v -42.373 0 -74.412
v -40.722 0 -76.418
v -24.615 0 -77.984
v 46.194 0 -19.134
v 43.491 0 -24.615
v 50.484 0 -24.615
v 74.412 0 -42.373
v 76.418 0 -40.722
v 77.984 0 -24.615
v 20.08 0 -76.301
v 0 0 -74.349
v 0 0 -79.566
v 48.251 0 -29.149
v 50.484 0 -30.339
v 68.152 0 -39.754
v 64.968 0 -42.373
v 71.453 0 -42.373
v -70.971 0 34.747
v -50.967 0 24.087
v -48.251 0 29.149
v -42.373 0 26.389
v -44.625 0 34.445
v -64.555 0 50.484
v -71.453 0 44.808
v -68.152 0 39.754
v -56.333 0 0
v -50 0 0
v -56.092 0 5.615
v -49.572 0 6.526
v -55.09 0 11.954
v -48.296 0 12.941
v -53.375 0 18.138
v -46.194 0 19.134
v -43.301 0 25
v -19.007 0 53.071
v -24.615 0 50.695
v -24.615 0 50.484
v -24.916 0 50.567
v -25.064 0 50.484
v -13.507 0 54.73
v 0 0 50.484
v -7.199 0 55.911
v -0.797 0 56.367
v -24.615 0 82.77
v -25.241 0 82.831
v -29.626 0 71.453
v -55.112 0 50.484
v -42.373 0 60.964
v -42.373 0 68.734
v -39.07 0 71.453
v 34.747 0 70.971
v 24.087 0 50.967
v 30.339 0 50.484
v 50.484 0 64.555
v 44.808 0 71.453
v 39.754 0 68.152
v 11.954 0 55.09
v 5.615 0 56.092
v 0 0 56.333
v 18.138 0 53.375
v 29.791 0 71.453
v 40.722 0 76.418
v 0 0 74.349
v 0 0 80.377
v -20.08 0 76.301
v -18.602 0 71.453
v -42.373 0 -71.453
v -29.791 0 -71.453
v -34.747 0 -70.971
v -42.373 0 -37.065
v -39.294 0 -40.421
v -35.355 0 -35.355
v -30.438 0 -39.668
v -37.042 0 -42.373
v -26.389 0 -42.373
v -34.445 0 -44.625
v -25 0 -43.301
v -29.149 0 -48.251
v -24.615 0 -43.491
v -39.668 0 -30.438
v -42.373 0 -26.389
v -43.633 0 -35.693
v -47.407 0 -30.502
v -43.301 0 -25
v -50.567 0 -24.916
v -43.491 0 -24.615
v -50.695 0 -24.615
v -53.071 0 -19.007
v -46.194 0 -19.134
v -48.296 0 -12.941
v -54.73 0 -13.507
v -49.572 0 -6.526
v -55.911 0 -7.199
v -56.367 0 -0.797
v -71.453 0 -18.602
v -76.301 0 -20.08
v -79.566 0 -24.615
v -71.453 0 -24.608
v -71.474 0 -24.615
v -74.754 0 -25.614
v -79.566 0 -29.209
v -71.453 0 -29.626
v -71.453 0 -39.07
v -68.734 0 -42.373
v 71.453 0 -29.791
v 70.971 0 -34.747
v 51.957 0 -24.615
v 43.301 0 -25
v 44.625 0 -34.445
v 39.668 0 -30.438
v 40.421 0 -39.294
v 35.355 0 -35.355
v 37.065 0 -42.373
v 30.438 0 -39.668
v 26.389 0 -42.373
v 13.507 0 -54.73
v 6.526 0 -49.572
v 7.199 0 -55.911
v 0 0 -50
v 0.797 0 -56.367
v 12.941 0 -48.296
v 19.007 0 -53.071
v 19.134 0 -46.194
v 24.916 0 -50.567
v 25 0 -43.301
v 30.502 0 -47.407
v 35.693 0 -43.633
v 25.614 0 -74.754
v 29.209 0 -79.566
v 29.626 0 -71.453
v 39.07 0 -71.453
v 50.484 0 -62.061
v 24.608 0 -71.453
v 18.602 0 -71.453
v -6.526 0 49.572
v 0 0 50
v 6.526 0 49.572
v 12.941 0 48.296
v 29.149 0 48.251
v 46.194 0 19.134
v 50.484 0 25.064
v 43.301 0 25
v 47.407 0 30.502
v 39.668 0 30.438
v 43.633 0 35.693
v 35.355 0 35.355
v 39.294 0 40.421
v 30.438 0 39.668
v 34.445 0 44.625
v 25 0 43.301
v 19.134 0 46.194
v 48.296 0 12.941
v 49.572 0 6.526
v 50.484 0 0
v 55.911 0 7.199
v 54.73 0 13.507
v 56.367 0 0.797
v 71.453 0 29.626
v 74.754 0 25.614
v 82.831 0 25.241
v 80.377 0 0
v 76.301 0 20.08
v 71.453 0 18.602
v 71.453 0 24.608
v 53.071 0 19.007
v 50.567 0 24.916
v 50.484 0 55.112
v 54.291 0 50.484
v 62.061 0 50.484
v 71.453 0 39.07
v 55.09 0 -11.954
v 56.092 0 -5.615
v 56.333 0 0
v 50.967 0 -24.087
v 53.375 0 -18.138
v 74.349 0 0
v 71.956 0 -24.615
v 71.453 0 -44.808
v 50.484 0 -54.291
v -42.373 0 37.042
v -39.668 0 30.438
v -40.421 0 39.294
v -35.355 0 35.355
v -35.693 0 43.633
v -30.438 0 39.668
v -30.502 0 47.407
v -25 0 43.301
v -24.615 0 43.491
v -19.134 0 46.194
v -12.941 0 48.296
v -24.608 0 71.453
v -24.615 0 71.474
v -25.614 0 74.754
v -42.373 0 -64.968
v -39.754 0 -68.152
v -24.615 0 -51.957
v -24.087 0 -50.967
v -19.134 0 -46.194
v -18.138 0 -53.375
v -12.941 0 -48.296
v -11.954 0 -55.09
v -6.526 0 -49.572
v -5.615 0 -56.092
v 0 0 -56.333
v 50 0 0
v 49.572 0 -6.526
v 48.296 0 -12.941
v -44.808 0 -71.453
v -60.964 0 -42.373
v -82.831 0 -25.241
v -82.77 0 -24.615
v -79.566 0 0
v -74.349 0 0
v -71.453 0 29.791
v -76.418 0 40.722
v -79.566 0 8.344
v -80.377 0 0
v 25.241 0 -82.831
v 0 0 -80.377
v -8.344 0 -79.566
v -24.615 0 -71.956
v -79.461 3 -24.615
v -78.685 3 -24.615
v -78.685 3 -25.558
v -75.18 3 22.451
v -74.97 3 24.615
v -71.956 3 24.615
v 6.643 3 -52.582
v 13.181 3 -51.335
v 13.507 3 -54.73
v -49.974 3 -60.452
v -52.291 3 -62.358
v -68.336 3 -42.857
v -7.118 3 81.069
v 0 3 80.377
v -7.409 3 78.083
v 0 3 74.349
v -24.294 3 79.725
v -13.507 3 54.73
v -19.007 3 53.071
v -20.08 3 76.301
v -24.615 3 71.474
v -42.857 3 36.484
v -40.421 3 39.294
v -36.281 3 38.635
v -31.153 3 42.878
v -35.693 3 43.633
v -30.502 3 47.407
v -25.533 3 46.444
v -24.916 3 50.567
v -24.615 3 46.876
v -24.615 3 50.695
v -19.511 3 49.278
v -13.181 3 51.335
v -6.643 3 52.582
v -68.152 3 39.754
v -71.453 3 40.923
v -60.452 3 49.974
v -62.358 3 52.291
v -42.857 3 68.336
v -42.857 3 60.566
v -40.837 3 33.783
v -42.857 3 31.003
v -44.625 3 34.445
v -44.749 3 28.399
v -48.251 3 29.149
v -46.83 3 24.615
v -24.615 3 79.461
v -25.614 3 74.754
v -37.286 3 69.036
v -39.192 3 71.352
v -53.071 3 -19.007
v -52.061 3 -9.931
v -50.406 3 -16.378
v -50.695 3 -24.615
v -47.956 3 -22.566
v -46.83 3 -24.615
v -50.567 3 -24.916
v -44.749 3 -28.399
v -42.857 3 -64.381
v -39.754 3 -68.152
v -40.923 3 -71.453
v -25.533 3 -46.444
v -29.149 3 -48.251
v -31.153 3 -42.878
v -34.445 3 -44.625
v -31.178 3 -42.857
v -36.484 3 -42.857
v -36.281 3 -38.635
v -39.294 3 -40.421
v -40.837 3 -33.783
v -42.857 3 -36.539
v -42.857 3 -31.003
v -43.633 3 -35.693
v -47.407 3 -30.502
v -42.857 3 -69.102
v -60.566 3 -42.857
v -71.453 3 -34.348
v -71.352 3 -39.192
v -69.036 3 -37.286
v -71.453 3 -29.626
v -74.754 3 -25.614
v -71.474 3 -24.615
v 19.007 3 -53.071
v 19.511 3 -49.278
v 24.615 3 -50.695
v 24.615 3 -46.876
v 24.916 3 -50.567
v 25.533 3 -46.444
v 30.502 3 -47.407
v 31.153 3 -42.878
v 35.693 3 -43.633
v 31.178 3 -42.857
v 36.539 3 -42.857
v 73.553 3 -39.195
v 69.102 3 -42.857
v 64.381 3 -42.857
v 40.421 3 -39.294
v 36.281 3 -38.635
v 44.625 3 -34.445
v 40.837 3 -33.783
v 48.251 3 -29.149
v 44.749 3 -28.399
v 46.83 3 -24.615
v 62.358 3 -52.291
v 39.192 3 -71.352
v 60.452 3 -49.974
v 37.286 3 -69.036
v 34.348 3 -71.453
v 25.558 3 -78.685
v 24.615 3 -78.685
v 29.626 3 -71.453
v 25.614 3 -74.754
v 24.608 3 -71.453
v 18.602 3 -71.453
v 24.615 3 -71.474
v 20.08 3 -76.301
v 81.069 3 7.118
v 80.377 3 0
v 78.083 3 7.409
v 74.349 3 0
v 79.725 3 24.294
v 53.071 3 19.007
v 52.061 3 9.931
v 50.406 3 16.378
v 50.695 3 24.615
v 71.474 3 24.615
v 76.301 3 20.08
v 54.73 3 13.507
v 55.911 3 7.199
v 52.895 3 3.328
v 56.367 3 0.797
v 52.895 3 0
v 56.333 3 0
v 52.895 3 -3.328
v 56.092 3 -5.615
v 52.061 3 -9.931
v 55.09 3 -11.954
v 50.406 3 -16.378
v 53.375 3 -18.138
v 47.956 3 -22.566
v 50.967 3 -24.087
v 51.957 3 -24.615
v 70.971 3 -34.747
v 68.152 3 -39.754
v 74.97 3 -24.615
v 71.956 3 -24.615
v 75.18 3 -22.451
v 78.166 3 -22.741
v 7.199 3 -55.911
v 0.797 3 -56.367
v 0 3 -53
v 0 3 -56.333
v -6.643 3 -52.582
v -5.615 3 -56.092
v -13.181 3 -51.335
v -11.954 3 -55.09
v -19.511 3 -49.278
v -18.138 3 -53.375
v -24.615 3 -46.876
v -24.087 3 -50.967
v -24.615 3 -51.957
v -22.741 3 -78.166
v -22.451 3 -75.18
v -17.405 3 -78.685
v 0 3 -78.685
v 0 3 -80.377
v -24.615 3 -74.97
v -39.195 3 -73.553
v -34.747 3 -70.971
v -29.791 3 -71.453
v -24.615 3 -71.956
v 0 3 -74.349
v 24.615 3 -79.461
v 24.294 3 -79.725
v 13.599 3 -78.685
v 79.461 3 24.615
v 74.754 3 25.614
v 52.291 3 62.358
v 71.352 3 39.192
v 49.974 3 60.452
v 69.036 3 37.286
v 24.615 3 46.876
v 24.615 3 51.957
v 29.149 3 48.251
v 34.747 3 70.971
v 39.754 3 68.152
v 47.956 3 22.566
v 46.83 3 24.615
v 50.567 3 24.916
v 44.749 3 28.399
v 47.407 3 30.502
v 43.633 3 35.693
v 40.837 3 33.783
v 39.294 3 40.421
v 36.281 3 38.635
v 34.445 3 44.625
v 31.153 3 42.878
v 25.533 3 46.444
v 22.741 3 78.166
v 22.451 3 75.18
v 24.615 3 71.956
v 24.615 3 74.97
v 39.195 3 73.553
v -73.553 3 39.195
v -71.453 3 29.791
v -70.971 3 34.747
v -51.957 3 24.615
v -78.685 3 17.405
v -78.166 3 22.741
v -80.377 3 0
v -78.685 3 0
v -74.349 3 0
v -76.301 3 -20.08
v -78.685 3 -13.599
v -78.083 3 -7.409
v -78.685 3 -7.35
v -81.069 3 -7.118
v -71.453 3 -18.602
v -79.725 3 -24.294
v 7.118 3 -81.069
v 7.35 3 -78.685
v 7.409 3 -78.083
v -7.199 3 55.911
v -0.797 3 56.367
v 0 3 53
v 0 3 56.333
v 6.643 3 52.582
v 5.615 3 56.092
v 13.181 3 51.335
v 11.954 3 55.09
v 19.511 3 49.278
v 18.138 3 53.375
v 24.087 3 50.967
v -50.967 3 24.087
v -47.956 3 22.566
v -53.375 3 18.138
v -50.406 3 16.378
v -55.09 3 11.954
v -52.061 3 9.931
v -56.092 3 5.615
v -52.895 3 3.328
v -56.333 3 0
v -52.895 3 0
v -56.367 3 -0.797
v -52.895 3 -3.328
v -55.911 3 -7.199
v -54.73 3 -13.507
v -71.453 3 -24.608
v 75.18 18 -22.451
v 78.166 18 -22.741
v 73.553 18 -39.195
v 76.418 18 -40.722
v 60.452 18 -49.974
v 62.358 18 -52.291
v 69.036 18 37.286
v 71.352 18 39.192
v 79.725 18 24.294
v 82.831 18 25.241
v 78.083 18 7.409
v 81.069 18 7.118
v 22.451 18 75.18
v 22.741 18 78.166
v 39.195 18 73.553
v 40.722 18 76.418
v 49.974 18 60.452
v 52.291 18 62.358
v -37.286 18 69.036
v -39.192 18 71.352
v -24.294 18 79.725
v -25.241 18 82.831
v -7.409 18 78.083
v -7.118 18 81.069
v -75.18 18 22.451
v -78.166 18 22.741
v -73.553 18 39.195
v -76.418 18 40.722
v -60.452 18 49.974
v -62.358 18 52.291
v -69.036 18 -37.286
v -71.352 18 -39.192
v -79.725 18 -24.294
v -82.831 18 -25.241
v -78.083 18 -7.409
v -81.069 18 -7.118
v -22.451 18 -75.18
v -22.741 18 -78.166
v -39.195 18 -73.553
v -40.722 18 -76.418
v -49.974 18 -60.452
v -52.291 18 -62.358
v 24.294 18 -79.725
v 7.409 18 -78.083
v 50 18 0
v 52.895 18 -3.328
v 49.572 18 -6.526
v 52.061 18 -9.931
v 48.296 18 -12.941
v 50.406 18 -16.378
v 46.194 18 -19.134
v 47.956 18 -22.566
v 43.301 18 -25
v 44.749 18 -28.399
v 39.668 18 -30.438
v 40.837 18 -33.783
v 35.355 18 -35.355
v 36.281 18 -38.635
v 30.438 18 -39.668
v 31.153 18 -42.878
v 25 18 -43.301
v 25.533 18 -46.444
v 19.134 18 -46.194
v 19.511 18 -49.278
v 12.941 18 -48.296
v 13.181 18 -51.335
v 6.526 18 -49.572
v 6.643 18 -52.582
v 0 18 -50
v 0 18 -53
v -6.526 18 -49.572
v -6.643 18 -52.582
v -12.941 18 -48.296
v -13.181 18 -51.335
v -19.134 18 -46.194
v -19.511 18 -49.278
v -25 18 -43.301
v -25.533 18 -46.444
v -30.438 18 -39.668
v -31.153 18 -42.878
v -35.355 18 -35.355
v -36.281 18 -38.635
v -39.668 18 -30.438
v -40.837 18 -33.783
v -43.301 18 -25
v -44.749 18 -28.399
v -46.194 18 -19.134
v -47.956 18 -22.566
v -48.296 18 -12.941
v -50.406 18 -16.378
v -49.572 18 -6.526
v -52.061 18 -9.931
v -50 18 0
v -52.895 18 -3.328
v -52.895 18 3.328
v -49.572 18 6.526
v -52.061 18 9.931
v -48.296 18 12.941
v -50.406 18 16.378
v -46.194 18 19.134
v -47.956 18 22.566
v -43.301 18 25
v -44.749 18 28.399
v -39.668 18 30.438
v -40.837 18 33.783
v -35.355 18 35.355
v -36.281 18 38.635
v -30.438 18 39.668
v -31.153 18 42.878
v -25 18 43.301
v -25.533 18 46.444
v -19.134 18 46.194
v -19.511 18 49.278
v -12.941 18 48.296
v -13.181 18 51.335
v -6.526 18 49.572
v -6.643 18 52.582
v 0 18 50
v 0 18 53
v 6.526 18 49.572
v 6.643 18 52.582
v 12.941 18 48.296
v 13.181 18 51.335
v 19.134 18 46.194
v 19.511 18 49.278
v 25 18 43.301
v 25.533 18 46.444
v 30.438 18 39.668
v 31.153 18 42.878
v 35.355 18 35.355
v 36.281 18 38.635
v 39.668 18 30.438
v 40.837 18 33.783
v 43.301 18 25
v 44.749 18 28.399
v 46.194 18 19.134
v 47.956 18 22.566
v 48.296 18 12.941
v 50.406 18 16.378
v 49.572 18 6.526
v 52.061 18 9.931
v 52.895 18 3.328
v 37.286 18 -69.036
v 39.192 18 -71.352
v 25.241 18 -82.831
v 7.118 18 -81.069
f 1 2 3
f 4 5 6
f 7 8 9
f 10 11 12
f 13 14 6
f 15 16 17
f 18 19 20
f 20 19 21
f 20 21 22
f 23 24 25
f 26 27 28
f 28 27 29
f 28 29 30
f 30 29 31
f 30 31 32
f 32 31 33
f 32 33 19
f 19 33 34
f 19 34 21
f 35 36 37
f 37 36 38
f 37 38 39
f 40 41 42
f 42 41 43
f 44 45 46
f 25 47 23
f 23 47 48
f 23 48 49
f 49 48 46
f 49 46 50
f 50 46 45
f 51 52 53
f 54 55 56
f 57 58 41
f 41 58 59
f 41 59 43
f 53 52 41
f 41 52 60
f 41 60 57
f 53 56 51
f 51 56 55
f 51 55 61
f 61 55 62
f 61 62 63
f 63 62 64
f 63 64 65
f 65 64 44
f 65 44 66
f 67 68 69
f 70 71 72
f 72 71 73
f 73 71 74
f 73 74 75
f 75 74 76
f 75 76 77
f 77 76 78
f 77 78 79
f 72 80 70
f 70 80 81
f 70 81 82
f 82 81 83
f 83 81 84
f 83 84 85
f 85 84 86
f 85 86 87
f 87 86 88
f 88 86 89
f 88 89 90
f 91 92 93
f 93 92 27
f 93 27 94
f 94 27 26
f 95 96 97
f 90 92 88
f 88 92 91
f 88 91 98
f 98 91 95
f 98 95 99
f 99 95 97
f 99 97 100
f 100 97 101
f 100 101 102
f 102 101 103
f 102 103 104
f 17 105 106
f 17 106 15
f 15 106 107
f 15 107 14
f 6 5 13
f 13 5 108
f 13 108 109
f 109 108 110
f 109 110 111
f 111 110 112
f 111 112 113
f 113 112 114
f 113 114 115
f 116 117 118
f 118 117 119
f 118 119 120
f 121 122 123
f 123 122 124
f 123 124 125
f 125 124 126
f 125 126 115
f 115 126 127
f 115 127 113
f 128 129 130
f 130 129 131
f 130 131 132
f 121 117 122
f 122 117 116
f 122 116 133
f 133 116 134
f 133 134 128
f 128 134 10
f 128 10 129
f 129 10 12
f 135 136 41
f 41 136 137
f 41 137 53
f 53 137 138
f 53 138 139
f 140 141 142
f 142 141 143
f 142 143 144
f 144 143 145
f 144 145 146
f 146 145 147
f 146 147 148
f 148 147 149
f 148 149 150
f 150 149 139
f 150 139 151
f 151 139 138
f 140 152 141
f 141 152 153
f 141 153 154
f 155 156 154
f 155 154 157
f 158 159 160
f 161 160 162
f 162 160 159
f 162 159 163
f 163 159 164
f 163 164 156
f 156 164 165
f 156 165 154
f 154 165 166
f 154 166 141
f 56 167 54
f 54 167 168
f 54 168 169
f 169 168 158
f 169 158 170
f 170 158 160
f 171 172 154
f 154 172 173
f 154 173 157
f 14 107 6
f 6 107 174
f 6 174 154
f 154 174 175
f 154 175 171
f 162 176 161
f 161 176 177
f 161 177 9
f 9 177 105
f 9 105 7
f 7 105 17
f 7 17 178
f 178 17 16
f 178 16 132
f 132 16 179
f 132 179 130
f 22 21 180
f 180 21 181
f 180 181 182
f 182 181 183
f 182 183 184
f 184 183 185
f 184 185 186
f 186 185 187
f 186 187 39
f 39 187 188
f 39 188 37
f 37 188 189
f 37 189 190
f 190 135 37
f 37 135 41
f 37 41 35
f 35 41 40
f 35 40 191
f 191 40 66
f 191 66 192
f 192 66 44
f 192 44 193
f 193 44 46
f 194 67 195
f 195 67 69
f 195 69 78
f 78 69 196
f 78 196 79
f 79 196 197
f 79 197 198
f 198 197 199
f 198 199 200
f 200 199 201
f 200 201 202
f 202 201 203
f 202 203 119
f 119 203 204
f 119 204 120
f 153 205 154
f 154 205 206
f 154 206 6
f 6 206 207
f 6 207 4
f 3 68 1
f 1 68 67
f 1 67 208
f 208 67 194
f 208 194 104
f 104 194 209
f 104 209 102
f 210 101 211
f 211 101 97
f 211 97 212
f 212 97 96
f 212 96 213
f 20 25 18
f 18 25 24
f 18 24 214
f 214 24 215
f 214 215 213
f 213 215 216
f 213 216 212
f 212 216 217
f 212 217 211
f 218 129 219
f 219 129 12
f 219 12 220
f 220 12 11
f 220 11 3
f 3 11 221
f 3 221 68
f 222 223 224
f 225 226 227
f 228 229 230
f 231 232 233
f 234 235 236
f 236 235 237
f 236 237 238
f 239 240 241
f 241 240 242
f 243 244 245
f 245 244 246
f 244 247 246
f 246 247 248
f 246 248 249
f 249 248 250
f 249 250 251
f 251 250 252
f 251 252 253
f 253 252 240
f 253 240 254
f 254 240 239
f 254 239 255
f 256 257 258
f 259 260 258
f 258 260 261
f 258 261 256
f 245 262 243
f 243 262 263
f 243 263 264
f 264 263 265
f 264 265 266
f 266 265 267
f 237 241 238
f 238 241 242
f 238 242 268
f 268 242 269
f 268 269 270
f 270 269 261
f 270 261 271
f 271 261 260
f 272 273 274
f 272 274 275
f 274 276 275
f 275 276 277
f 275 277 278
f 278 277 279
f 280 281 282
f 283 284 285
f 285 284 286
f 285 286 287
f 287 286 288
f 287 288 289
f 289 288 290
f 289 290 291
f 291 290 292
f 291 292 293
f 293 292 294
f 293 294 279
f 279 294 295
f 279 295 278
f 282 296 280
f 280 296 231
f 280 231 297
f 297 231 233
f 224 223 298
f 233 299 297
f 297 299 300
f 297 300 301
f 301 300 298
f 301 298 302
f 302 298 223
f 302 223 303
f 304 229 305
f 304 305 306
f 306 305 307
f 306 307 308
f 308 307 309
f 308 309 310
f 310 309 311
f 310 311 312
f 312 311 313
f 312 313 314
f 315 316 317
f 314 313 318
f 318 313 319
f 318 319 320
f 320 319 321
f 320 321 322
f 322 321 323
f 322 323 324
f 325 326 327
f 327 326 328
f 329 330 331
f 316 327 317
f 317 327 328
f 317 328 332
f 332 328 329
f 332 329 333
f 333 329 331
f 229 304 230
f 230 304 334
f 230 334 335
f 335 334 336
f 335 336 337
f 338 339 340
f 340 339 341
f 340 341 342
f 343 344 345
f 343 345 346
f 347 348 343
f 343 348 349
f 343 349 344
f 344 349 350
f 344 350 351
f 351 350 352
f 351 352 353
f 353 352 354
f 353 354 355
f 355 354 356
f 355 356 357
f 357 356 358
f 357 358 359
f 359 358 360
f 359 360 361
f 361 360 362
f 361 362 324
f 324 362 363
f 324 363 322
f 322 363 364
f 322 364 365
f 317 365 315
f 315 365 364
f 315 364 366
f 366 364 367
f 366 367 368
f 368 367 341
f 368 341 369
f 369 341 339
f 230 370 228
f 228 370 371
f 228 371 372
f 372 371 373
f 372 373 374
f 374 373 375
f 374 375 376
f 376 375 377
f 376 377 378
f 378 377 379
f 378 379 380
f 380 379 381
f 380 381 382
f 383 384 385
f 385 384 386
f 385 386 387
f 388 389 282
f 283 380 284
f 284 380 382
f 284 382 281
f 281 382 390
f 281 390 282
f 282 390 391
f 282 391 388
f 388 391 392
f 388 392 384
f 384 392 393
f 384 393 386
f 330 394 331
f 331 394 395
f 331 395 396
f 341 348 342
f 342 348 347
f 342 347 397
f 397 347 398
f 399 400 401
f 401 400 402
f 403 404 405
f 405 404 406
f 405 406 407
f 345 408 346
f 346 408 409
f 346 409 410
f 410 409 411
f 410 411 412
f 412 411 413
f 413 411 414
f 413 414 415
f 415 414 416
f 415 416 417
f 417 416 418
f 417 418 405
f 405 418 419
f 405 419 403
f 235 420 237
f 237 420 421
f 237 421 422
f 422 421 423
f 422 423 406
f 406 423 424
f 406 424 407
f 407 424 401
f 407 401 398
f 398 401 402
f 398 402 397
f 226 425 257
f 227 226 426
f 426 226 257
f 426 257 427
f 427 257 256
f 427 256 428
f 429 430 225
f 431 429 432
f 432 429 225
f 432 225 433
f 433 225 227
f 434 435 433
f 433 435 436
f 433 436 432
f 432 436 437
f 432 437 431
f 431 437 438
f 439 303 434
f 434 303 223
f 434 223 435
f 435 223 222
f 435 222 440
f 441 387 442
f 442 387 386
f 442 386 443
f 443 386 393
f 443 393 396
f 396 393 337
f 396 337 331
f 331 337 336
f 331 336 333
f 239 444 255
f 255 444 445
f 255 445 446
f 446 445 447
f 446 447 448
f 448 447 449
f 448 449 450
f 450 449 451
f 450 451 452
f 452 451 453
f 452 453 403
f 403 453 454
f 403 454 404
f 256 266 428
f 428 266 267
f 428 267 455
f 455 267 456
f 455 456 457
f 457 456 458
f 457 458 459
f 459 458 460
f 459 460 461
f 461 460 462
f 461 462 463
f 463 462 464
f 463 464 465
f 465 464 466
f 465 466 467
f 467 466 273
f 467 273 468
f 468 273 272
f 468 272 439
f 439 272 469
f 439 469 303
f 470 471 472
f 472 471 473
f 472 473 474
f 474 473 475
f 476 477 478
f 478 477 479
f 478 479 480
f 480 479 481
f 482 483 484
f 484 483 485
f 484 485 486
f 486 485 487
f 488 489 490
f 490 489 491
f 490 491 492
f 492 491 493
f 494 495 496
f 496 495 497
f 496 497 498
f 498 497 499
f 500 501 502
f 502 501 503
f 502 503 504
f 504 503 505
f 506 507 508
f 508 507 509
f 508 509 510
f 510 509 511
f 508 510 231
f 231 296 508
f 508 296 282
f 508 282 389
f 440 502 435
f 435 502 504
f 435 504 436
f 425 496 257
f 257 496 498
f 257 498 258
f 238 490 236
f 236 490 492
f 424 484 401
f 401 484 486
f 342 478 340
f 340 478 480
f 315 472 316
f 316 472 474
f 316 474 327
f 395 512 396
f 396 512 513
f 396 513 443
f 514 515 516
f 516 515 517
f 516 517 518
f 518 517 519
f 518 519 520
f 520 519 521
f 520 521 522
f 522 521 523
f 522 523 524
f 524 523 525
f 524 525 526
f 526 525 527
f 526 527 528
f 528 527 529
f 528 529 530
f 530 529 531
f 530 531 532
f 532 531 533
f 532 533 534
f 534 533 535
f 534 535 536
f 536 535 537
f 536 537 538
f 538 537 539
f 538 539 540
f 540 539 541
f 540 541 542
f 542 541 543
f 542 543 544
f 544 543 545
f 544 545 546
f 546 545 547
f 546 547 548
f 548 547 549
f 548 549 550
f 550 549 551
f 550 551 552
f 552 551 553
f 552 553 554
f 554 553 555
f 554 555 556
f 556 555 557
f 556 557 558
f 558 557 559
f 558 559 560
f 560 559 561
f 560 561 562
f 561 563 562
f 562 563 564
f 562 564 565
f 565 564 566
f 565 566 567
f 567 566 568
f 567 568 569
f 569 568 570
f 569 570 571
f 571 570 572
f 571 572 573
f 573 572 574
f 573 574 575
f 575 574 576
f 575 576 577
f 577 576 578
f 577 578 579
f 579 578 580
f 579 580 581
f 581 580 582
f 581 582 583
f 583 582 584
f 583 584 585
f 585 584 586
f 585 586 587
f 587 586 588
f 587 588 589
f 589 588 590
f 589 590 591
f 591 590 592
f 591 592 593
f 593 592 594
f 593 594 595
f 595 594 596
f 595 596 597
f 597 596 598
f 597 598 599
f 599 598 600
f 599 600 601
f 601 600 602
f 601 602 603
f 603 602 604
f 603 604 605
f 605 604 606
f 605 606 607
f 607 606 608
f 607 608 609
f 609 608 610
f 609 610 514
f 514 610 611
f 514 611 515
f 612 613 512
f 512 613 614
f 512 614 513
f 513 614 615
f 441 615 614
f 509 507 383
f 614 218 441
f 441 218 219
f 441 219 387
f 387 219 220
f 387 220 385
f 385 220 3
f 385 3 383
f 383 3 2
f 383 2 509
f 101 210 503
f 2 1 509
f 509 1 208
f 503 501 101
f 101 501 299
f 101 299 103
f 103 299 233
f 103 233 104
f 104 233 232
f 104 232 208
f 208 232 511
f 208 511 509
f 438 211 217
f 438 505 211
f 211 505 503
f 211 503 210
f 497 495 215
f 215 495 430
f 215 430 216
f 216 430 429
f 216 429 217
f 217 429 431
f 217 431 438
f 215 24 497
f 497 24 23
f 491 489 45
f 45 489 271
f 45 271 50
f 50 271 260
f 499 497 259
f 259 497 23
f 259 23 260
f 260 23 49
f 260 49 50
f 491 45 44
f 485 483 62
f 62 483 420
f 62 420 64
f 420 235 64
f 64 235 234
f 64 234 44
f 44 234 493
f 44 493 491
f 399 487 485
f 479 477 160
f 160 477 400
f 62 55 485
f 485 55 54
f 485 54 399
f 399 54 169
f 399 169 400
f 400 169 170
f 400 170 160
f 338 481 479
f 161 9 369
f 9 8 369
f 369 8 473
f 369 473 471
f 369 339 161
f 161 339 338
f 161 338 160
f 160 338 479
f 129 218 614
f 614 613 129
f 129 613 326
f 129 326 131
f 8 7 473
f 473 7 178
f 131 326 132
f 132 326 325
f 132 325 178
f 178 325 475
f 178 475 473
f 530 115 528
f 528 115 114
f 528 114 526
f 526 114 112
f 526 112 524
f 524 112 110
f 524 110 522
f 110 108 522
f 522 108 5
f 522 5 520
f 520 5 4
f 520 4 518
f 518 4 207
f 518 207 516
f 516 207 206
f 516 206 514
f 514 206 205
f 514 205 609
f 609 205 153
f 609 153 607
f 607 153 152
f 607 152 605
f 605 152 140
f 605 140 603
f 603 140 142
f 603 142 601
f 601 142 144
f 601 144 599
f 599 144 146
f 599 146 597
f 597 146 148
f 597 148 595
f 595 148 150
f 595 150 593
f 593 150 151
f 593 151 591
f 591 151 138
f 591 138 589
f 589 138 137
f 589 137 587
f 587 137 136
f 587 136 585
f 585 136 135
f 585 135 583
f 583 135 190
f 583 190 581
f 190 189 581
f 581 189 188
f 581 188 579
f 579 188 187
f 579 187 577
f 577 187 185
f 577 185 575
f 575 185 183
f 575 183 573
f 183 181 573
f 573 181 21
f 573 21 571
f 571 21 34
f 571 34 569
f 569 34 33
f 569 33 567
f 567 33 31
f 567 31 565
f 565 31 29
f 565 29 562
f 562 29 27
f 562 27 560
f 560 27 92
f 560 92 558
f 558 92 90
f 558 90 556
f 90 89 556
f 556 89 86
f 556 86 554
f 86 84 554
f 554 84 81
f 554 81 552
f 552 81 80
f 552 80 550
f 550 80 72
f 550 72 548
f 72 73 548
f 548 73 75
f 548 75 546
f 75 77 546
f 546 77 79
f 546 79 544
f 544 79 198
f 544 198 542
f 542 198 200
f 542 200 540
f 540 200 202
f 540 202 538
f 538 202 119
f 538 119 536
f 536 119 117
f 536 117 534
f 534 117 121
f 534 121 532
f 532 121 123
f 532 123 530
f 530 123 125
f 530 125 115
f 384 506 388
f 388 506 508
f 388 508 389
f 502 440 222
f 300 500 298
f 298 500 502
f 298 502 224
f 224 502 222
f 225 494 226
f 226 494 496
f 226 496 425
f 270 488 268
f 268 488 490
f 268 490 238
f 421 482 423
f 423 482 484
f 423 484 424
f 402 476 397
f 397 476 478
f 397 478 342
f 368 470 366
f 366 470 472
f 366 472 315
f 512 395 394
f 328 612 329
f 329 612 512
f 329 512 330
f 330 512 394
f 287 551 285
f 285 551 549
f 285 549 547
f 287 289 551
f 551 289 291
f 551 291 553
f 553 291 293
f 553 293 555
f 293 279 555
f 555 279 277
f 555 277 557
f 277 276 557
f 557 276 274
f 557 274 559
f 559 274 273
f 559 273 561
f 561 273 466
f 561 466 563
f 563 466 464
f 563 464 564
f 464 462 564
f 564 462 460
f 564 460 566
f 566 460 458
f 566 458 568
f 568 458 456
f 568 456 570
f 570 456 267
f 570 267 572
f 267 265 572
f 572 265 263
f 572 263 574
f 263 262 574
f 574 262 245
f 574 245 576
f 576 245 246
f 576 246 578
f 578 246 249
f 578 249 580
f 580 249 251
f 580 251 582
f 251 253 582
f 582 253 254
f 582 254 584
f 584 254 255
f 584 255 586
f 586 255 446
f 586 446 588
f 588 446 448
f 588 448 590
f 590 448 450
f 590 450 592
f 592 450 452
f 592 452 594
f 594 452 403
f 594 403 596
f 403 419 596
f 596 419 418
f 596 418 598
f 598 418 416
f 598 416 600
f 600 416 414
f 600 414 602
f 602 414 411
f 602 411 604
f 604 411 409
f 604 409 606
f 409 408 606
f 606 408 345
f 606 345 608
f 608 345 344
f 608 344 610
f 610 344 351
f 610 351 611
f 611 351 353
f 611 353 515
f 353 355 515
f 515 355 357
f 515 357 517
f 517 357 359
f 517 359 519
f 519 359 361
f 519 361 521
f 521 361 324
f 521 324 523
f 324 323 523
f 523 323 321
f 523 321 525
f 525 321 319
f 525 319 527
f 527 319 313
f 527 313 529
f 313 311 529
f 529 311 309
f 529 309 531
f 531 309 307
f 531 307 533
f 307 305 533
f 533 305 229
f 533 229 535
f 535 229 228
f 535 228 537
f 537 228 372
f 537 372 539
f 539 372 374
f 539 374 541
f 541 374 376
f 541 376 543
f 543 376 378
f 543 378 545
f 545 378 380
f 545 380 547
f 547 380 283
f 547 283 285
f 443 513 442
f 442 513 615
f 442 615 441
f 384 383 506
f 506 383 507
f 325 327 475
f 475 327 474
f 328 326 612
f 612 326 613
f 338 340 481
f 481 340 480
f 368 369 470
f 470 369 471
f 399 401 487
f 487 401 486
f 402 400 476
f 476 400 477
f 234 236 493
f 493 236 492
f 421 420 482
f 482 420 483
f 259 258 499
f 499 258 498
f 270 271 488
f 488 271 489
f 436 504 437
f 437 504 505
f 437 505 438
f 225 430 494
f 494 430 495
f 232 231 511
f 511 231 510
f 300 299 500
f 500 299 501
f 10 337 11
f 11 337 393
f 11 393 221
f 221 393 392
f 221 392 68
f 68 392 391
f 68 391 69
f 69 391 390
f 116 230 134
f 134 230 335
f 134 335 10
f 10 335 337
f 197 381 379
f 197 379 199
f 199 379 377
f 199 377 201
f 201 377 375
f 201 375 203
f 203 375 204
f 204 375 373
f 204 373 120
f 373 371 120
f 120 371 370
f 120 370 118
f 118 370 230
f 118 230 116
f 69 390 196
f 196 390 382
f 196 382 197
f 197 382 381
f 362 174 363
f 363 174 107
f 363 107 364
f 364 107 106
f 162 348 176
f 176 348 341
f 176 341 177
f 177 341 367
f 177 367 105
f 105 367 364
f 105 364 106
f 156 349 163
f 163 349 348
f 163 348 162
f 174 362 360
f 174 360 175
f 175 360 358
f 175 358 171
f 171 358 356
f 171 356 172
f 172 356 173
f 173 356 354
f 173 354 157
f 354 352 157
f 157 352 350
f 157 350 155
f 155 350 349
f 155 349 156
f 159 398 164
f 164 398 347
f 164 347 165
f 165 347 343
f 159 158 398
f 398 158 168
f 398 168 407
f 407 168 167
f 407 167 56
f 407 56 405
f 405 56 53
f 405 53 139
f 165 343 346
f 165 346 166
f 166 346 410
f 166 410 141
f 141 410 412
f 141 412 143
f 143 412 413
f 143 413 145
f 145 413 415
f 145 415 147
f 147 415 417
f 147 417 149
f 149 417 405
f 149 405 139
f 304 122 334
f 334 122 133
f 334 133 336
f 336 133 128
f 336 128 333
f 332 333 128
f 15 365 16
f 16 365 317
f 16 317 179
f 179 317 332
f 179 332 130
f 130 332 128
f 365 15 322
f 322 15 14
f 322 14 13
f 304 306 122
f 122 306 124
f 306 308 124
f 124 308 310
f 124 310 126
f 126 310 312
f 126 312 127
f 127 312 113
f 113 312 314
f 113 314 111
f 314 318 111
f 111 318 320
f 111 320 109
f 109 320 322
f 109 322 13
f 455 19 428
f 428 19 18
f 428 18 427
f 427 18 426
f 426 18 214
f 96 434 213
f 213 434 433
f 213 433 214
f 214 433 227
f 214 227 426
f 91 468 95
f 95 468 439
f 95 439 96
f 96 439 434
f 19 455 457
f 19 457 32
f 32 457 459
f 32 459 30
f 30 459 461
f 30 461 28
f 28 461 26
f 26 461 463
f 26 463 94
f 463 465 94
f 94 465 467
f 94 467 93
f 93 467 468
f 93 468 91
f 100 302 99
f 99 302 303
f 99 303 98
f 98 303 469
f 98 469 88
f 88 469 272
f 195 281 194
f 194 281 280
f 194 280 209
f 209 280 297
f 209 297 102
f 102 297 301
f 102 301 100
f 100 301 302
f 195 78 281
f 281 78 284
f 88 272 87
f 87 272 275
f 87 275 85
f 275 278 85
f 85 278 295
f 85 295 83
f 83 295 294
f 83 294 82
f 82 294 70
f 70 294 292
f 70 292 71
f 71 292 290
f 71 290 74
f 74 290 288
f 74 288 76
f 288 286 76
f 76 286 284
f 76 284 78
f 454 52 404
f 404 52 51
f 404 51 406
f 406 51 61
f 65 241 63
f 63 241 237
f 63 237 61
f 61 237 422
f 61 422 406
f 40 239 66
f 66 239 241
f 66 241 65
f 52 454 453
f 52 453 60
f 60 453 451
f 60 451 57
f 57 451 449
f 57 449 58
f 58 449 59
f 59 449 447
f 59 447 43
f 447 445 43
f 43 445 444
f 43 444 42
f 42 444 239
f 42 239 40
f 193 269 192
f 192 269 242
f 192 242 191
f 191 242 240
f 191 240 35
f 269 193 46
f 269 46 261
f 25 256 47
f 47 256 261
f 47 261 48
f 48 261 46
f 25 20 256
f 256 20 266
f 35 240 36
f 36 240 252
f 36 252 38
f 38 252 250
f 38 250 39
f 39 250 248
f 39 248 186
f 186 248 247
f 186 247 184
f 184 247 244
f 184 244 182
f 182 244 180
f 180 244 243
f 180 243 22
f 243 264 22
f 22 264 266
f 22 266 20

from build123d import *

# Parameters (mm, degrees)
SKETCH1_R           = 50
BOSS_EXTRUDE1_DEPTH = 18
SHELL1_T            = -3
CUT_EXTRUDE1_DEPTH  = 15
CUT_EXTRUDE2_DEPTH  = 119.097158392


with BuildPart() as part:
    # Sketch1 → Boss-Extrude1 (new body)
    with BuildSketch(Plane(origin=(0, 0, 0), x_dir=(1, 0, 0), z_dir=(0, 1, 0))):
        Polygon((-40.722412876, 76.418266738), (-82.830968907, 25.240780326), (-76.418266738, -40.722412876), (-25.240780326, -82.830968907), (40.722412876, -76.418266738), (82.830968907, -25.240780326), (76.418266738, 40.722412876), (25.240780326, 82.830968907), align=None)
        Circle(SKETCH1_R, mode=Mode.SUBTRACT)
    extrude(amount=BOSS_EXTRUDE1_DEPTH)

    # Shell1
    shell1_openings = [part.faces().sort_by_distance(p)[0] for p in [
        (-59.967550003, 18, -49.340972299),
    ]]
    offset(amount=SHELL1_T, openings=shell1_openings, kind=Kind.INTERSECTION)

    # Sketch3 → Cut-Extrude1 (cut)
    with BuildSketch(Plane(origin=(0, 18, 0), x_dir=(1, 0, 0), z_dir=(0, 1, 0))):
        Polygon((7.118415409, 81.069178382), (7.408696019, 78.083255213), (-22.450535664, 75.18044911), (-22.740816275, 78.166372279), align=None)
        Polygon((60.451938453, 49.974460064), (37.285679369, 69.035531388), (39.191786502, 71.352157297), (62.358045586, 52.291085972), align=None)
        Polygon((78.083255213, -7.408696019), (75.18044911, 22.450535664), (78.166372279, 22.740816275), (81.069178382, -7.118415409), align=None)
        Polygon((49.974460064, -60.451938453), (69.035531388, -37.285679369), (71.352157297, -39.191786502), (52.291085972, -62.358045586), align=None)
        Polygon((-7.408696019, -78.083255213), (22.450535664, -75.18044911), (22.740816275, -78.166372279), (-7.118415409, -81.069178382), align=None)
        Polygon((-60.451938453, -49.974460064), (-37.285679369, -69.035531388), (-39.191786502, -71.352157297), (-62.358045586, -52.291085972), align=None)
        Polygon((-78.083255213, 7.408696019), (-75.18044911, -22.450535664), (-78.166372279, -22.740816275), (-81.069178382, 7.118415409), align=None)
        Polygon((-49.974460064, 60.451938453), (-69.035531388, 37.285679369), (-71.352157297, 39.191786502), (-52.291085972, 62.358045586), align=None)
    extrude(amount=-CUT_EXTRUDE1_DEPTH, mode=Mode.SUBTRACT)

    # Sketch5 → Cut-Extrude2 (cut, through all)
    with BuildSketch(Plane(origin=(0, 3, 0), x_dir=(1, 0, 0), z_dir=(0, 1, 0))):
        with BuildLine():
            Line((-34.746953293, 70.970892834), (-24.087191321, 50.967153462))
            ThreePointArc((-24.087191321, 50.967153462), (-5.614880768, 56.092037151), (13.506743194, 54.730351781))
            Line((13.506743194, 54.730351781), (20.079875719, 76.300958107))
            Line((20.079875719, 76.300958107), (-34.746953293, 70.970892834))
        make_face()
        with BuildLine():
            Line((25.614193291, 74.753805889), (68.151541175, 39.754308602))
            Line((68.151541175, 39.754308602), (48.250912585, 29.149493176))
            ThreePointArc((48.250912585, 29.149493176), (35.692739573, 43.633380106), (19.007003508, 53.071436154))
            Line((19.007003508, 53.071436154), (25.614193291, 74.753805889))
        make_face()
        with BuildLine():
            Line((70.970892834, 34.746953293), (76.300958107, -20.079875719))
            Line((76.300958107, -20.079875719), (54.730351781, -13.506743194))
            ThreePointArc((54.730351781, -13.506743194), (56.092037151, 5.614880768), (50.967153462, 24.087191321))
            Line((50.967153462, 24.087191321), (70.970892834, 34.746953293))
        make_face()
        with BuildLine():
            Line((74.753805889, -25.614193291), (39.754308602, -68.151541175))
            Line((39.754308602, -68.151541175), (29.149493176, -48.250912585))
            ThreePointArc((29.149493176, -48.250912585), (43.633380106, -35.692739573), (53.071436154, -19.007003508))
            Line((53.071436154, -19.007003508), (74.753805889, -25.614193291))
        make_face()
        with BuildLine():
            Line((34.746953293, -70.970892834), (-20.079875719, -76.300958107))
            Line((-20.079875719, -76.300958107), (-13.506743194, -54.730351781))
            ThreePointArc((-13.506743194, -54.730351781), (5.614880768, -56.092037151), (24.087191321, -50.967153462))
            Line((24.087191321, -50.967153462), (34.746953293, -70.970892834))
        make_face()
        with BuildLine():
            Line((-25.614193291, -74.753805889), (-68.151541175, -39.754308602))
            Line((-68.151541175, -39.754308602), (-48.250912585, -29.149493176))
            ThreePointArc((-48.250912585, -29.149493176), (-35.692739573, -43.633380106), (-19.007003508, -53.071436154))
            Line((-19.007003508, -53.071436154), (-25.614193291, -74.753805889))
        make_face()
        with BuildLine():
            Line((-70.970892834, -34.746953293), (-76.300958107, 20.079875719))
            Line((-76.300958107, 20.079875719), (-54.730351781, 13.506743194))
            ThreePointArc((-54.730351781, 13.506743194), (-56.092037151, -5.614880768), (-50.967153462, -24.087191321))
            Line((-50.967153462, -24.087191321), (-70.970892834, -34.746953293))
        make_face()
        with BuildLine():
            Line((-74.753805889, 25.614193291), (-39.754308602, 68.151541175))
            Line((-39.754308602, 68.151541175), (-29.149493176, 48.250912585))
            ThreePointArc((-29.149493176, 48.250912585), (-43.633380106, 35.692739573), (-53.071436154, 19.007003508))
            Line((-53.071436154, 19.007003508), (-74.753805889, 25.614193291))
        make_face()
    extrude(amount=-CUT_EXTRUDE2_DEPTH, mode=Mode.SUBTRACT)


solid = part.part
